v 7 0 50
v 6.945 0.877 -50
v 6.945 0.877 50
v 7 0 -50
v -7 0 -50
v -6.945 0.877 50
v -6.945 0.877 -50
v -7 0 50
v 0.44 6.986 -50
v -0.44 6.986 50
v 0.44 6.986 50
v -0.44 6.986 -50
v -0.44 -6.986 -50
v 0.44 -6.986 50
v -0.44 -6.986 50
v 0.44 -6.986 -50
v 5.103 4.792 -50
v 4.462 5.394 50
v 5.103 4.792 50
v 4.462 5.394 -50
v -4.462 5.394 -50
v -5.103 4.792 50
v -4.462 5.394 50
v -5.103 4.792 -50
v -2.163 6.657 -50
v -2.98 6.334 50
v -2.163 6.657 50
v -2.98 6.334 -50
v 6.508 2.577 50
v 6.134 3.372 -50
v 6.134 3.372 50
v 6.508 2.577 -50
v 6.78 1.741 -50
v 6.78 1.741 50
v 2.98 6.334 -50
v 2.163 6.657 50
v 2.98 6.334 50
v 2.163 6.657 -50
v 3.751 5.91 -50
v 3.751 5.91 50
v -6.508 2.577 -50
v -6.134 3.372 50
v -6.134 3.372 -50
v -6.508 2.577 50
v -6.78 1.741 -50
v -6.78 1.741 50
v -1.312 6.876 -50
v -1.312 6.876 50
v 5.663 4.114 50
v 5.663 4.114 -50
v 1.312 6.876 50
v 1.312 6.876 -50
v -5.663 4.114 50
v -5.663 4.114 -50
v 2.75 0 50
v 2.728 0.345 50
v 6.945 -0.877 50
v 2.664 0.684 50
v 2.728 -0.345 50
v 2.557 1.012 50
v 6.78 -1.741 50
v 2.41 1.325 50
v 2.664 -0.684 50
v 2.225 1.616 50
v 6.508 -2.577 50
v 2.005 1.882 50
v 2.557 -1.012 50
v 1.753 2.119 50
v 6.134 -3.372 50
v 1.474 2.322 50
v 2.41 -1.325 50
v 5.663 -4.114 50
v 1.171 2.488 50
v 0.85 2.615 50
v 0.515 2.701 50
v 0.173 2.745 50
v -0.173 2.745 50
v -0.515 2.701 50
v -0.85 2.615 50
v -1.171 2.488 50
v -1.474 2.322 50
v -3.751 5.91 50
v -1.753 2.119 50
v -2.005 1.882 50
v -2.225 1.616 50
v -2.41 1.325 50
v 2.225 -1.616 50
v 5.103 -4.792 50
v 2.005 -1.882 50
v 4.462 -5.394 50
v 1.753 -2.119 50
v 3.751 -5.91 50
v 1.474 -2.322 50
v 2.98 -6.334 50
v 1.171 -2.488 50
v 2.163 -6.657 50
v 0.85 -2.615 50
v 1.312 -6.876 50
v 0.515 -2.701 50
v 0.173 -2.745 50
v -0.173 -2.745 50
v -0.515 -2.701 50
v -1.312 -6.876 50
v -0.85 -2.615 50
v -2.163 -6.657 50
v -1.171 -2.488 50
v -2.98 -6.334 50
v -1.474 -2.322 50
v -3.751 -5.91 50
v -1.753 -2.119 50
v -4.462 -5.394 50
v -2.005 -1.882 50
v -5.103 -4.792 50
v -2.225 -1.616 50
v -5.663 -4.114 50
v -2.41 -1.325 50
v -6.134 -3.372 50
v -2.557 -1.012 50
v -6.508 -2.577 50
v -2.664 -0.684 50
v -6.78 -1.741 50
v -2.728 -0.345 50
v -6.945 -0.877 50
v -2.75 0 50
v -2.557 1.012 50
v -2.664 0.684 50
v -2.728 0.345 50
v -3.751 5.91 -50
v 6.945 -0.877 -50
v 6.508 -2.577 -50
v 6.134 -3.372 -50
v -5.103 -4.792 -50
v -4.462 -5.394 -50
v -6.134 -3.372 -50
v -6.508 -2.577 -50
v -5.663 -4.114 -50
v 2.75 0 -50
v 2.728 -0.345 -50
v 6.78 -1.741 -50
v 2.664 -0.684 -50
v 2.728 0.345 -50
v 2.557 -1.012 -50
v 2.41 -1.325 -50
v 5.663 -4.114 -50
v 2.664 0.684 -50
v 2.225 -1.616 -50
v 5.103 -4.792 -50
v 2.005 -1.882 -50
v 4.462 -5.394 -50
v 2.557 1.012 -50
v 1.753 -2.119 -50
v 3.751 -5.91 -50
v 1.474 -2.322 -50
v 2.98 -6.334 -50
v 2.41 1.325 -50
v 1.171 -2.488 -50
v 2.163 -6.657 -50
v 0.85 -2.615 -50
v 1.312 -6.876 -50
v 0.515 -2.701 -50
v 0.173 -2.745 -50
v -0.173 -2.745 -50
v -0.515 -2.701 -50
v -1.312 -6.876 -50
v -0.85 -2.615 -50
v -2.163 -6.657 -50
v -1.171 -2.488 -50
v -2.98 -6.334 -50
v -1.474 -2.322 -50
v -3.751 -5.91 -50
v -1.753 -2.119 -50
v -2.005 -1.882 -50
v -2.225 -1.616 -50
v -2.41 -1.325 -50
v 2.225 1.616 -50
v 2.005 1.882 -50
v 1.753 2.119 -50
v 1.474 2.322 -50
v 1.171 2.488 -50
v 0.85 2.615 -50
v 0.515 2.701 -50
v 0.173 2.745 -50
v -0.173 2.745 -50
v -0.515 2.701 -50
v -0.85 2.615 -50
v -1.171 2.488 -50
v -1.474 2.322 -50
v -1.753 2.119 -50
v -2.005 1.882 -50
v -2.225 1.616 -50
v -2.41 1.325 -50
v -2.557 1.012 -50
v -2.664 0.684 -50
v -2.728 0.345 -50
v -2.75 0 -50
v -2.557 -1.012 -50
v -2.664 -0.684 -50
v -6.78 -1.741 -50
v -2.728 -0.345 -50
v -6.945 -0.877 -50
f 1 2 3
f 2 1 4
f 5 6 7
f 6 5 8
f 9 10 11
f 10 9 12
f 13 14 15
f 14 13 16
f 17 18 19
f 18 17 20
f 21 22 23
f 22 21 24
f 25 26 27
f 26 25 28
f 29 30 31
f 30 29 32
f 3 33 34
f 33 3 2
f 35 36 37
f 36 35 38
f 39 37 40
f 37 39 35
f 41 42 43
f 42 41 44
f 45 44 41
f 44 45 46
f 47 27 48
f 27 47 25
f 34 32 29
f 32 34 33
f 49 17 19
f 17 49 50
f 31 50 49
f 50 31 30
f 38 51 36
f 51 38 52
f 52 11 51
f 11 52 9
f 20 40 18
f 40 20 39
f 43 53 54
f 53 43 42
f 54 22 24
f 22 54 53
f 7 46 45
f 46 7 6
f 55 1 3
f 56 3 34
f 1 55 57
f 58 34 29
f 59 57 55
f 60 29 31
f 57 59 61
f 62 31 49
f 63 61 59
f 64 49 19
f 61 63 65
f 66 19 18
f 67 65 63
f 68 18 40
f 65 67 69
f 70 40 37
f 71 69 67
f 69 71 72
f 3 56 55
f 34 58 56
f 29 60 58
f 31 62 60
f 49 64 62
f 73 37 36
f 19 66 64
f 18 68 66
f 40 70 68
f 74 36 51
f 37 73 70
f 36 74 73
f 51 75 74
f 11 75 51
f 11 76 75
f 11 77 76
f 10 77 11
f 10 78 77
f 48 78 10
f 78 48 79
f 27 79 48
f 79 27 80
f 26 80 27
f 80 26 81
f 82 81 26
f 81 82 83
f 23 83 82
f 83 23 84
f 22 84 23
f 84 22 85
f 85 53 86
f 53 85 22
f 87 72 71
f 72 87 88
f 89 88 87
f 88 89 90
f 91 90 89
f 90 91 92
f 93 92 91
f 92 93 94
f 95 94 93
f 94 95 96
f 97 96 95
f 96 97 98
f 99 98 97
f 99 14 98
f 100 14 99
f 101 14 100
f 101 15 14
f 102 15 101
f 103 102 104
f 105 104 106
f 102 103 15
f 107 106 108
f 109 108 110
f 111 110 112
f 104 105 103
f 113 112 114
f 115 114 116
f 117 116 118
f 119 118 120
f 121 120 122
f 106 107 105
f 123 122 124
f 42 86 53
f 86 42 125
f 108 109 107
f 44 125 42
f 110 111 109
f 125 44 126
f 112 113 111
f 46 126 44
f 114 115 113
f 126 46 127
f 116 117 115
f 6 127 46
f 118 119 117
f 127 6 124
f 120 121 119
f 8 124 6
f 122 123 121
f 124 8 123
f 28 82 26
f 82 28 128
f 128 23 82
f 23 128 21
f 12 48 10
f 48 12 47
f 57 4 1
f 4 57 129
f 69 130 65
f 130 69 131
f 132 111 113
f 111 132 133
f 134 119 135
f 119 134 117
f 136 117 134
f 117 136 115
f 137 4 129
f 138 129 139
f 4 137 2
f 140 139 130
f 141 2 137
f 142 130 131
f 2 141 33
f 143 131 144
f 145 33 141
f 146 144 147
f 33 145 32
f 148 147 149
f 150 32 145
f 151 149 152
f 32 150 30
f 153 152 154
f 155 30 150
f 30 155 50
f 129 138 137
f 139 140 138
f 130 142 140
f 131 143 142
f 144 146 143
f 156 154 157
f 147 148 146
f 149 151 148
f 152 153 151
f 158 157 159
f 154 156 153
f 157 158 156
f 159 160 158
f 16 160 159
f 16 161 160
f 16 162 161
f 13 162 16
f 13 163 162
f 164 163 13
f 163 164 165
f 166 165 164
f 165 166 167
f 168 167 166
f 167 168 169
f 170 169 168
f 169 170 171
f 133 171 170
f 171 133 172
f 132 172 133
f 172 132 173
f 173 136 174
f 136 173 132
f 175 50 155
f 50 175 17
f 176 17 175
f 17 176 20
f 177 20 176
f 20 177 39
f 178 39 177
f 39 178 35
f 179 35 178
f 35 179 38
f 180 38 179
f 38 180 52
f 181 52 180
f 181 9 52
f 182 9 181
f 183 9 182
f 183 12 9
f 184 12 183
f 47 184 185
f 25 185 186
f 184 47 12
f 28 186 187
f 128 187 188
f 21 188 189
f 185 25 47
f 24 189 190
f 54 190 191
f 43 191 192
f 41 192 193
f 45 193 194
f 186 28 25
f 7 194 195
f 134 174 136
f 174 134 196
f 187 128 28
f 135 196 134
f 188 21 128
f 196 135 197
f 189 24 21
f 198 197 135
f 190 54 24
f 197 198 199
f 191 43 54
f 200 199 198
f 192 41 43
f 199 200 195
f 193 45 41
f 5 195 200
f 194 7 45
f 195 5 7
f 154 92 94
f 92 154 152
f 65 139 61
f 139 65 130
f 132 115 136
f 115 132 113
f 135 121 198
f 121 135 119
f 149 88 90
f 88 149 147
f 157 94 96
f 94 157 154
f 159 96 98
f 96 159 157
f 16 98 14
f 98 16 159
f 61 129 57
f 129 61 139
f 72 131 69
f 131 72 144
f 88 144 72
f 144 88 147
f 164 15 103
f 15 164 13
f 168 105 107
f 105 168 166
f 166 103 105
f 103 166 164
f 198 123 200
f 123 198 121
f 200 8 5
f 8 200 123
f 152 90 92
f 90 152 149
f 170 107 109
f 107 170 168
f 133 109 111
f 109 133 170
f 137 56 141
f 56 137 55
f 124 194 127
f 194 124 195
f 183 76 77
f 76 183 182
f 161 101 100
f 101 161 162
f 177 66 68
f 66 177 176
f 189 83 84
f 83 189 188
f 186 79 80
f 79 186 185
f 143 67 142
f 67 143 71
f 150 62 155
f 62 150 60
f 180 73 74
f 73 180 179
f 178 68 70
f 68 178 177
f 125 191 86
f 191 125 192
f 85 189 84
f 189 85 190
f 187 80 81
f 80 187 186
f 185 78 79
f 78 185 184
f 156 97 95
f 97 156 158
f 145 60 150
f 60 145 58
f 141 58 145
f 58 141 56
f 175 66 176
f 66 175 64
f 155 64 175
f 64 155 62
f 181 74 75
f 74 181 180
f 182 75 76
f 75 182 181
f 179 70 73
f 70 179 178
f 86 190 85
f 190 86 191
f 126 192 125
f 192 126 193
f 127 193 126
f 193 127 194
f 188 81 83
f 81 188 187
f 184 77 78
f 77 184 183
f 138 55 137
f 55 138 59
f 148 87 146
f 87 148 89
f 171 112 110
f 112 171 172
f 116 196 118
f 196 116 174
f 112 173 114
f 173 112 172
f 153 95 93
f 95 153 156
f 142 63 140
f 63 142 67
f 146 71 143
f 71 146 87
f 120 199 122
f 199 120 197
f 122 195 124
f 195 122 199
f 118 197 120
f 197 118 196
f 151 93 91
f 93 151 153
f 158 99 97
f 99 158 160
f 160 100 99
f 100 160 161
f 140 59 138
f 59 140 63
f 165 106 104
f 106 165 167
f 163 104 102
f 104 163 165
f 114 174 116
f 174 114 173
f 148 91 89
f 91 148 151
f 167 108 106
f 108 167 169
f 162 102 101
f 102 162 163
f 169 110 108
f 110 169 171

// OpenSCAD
$fn = 50;


difference() {
	union() {
		translate(v = [0, 0, -50.0000000000]) {
			cylinder(h = 100, r = 7.0000000000);
		}
	}
	union() {
		translate(v = [0, 0, -100.0000000000]) {
			cylinder(h = 200, r = 2.7500000000);
		}
	}
}
